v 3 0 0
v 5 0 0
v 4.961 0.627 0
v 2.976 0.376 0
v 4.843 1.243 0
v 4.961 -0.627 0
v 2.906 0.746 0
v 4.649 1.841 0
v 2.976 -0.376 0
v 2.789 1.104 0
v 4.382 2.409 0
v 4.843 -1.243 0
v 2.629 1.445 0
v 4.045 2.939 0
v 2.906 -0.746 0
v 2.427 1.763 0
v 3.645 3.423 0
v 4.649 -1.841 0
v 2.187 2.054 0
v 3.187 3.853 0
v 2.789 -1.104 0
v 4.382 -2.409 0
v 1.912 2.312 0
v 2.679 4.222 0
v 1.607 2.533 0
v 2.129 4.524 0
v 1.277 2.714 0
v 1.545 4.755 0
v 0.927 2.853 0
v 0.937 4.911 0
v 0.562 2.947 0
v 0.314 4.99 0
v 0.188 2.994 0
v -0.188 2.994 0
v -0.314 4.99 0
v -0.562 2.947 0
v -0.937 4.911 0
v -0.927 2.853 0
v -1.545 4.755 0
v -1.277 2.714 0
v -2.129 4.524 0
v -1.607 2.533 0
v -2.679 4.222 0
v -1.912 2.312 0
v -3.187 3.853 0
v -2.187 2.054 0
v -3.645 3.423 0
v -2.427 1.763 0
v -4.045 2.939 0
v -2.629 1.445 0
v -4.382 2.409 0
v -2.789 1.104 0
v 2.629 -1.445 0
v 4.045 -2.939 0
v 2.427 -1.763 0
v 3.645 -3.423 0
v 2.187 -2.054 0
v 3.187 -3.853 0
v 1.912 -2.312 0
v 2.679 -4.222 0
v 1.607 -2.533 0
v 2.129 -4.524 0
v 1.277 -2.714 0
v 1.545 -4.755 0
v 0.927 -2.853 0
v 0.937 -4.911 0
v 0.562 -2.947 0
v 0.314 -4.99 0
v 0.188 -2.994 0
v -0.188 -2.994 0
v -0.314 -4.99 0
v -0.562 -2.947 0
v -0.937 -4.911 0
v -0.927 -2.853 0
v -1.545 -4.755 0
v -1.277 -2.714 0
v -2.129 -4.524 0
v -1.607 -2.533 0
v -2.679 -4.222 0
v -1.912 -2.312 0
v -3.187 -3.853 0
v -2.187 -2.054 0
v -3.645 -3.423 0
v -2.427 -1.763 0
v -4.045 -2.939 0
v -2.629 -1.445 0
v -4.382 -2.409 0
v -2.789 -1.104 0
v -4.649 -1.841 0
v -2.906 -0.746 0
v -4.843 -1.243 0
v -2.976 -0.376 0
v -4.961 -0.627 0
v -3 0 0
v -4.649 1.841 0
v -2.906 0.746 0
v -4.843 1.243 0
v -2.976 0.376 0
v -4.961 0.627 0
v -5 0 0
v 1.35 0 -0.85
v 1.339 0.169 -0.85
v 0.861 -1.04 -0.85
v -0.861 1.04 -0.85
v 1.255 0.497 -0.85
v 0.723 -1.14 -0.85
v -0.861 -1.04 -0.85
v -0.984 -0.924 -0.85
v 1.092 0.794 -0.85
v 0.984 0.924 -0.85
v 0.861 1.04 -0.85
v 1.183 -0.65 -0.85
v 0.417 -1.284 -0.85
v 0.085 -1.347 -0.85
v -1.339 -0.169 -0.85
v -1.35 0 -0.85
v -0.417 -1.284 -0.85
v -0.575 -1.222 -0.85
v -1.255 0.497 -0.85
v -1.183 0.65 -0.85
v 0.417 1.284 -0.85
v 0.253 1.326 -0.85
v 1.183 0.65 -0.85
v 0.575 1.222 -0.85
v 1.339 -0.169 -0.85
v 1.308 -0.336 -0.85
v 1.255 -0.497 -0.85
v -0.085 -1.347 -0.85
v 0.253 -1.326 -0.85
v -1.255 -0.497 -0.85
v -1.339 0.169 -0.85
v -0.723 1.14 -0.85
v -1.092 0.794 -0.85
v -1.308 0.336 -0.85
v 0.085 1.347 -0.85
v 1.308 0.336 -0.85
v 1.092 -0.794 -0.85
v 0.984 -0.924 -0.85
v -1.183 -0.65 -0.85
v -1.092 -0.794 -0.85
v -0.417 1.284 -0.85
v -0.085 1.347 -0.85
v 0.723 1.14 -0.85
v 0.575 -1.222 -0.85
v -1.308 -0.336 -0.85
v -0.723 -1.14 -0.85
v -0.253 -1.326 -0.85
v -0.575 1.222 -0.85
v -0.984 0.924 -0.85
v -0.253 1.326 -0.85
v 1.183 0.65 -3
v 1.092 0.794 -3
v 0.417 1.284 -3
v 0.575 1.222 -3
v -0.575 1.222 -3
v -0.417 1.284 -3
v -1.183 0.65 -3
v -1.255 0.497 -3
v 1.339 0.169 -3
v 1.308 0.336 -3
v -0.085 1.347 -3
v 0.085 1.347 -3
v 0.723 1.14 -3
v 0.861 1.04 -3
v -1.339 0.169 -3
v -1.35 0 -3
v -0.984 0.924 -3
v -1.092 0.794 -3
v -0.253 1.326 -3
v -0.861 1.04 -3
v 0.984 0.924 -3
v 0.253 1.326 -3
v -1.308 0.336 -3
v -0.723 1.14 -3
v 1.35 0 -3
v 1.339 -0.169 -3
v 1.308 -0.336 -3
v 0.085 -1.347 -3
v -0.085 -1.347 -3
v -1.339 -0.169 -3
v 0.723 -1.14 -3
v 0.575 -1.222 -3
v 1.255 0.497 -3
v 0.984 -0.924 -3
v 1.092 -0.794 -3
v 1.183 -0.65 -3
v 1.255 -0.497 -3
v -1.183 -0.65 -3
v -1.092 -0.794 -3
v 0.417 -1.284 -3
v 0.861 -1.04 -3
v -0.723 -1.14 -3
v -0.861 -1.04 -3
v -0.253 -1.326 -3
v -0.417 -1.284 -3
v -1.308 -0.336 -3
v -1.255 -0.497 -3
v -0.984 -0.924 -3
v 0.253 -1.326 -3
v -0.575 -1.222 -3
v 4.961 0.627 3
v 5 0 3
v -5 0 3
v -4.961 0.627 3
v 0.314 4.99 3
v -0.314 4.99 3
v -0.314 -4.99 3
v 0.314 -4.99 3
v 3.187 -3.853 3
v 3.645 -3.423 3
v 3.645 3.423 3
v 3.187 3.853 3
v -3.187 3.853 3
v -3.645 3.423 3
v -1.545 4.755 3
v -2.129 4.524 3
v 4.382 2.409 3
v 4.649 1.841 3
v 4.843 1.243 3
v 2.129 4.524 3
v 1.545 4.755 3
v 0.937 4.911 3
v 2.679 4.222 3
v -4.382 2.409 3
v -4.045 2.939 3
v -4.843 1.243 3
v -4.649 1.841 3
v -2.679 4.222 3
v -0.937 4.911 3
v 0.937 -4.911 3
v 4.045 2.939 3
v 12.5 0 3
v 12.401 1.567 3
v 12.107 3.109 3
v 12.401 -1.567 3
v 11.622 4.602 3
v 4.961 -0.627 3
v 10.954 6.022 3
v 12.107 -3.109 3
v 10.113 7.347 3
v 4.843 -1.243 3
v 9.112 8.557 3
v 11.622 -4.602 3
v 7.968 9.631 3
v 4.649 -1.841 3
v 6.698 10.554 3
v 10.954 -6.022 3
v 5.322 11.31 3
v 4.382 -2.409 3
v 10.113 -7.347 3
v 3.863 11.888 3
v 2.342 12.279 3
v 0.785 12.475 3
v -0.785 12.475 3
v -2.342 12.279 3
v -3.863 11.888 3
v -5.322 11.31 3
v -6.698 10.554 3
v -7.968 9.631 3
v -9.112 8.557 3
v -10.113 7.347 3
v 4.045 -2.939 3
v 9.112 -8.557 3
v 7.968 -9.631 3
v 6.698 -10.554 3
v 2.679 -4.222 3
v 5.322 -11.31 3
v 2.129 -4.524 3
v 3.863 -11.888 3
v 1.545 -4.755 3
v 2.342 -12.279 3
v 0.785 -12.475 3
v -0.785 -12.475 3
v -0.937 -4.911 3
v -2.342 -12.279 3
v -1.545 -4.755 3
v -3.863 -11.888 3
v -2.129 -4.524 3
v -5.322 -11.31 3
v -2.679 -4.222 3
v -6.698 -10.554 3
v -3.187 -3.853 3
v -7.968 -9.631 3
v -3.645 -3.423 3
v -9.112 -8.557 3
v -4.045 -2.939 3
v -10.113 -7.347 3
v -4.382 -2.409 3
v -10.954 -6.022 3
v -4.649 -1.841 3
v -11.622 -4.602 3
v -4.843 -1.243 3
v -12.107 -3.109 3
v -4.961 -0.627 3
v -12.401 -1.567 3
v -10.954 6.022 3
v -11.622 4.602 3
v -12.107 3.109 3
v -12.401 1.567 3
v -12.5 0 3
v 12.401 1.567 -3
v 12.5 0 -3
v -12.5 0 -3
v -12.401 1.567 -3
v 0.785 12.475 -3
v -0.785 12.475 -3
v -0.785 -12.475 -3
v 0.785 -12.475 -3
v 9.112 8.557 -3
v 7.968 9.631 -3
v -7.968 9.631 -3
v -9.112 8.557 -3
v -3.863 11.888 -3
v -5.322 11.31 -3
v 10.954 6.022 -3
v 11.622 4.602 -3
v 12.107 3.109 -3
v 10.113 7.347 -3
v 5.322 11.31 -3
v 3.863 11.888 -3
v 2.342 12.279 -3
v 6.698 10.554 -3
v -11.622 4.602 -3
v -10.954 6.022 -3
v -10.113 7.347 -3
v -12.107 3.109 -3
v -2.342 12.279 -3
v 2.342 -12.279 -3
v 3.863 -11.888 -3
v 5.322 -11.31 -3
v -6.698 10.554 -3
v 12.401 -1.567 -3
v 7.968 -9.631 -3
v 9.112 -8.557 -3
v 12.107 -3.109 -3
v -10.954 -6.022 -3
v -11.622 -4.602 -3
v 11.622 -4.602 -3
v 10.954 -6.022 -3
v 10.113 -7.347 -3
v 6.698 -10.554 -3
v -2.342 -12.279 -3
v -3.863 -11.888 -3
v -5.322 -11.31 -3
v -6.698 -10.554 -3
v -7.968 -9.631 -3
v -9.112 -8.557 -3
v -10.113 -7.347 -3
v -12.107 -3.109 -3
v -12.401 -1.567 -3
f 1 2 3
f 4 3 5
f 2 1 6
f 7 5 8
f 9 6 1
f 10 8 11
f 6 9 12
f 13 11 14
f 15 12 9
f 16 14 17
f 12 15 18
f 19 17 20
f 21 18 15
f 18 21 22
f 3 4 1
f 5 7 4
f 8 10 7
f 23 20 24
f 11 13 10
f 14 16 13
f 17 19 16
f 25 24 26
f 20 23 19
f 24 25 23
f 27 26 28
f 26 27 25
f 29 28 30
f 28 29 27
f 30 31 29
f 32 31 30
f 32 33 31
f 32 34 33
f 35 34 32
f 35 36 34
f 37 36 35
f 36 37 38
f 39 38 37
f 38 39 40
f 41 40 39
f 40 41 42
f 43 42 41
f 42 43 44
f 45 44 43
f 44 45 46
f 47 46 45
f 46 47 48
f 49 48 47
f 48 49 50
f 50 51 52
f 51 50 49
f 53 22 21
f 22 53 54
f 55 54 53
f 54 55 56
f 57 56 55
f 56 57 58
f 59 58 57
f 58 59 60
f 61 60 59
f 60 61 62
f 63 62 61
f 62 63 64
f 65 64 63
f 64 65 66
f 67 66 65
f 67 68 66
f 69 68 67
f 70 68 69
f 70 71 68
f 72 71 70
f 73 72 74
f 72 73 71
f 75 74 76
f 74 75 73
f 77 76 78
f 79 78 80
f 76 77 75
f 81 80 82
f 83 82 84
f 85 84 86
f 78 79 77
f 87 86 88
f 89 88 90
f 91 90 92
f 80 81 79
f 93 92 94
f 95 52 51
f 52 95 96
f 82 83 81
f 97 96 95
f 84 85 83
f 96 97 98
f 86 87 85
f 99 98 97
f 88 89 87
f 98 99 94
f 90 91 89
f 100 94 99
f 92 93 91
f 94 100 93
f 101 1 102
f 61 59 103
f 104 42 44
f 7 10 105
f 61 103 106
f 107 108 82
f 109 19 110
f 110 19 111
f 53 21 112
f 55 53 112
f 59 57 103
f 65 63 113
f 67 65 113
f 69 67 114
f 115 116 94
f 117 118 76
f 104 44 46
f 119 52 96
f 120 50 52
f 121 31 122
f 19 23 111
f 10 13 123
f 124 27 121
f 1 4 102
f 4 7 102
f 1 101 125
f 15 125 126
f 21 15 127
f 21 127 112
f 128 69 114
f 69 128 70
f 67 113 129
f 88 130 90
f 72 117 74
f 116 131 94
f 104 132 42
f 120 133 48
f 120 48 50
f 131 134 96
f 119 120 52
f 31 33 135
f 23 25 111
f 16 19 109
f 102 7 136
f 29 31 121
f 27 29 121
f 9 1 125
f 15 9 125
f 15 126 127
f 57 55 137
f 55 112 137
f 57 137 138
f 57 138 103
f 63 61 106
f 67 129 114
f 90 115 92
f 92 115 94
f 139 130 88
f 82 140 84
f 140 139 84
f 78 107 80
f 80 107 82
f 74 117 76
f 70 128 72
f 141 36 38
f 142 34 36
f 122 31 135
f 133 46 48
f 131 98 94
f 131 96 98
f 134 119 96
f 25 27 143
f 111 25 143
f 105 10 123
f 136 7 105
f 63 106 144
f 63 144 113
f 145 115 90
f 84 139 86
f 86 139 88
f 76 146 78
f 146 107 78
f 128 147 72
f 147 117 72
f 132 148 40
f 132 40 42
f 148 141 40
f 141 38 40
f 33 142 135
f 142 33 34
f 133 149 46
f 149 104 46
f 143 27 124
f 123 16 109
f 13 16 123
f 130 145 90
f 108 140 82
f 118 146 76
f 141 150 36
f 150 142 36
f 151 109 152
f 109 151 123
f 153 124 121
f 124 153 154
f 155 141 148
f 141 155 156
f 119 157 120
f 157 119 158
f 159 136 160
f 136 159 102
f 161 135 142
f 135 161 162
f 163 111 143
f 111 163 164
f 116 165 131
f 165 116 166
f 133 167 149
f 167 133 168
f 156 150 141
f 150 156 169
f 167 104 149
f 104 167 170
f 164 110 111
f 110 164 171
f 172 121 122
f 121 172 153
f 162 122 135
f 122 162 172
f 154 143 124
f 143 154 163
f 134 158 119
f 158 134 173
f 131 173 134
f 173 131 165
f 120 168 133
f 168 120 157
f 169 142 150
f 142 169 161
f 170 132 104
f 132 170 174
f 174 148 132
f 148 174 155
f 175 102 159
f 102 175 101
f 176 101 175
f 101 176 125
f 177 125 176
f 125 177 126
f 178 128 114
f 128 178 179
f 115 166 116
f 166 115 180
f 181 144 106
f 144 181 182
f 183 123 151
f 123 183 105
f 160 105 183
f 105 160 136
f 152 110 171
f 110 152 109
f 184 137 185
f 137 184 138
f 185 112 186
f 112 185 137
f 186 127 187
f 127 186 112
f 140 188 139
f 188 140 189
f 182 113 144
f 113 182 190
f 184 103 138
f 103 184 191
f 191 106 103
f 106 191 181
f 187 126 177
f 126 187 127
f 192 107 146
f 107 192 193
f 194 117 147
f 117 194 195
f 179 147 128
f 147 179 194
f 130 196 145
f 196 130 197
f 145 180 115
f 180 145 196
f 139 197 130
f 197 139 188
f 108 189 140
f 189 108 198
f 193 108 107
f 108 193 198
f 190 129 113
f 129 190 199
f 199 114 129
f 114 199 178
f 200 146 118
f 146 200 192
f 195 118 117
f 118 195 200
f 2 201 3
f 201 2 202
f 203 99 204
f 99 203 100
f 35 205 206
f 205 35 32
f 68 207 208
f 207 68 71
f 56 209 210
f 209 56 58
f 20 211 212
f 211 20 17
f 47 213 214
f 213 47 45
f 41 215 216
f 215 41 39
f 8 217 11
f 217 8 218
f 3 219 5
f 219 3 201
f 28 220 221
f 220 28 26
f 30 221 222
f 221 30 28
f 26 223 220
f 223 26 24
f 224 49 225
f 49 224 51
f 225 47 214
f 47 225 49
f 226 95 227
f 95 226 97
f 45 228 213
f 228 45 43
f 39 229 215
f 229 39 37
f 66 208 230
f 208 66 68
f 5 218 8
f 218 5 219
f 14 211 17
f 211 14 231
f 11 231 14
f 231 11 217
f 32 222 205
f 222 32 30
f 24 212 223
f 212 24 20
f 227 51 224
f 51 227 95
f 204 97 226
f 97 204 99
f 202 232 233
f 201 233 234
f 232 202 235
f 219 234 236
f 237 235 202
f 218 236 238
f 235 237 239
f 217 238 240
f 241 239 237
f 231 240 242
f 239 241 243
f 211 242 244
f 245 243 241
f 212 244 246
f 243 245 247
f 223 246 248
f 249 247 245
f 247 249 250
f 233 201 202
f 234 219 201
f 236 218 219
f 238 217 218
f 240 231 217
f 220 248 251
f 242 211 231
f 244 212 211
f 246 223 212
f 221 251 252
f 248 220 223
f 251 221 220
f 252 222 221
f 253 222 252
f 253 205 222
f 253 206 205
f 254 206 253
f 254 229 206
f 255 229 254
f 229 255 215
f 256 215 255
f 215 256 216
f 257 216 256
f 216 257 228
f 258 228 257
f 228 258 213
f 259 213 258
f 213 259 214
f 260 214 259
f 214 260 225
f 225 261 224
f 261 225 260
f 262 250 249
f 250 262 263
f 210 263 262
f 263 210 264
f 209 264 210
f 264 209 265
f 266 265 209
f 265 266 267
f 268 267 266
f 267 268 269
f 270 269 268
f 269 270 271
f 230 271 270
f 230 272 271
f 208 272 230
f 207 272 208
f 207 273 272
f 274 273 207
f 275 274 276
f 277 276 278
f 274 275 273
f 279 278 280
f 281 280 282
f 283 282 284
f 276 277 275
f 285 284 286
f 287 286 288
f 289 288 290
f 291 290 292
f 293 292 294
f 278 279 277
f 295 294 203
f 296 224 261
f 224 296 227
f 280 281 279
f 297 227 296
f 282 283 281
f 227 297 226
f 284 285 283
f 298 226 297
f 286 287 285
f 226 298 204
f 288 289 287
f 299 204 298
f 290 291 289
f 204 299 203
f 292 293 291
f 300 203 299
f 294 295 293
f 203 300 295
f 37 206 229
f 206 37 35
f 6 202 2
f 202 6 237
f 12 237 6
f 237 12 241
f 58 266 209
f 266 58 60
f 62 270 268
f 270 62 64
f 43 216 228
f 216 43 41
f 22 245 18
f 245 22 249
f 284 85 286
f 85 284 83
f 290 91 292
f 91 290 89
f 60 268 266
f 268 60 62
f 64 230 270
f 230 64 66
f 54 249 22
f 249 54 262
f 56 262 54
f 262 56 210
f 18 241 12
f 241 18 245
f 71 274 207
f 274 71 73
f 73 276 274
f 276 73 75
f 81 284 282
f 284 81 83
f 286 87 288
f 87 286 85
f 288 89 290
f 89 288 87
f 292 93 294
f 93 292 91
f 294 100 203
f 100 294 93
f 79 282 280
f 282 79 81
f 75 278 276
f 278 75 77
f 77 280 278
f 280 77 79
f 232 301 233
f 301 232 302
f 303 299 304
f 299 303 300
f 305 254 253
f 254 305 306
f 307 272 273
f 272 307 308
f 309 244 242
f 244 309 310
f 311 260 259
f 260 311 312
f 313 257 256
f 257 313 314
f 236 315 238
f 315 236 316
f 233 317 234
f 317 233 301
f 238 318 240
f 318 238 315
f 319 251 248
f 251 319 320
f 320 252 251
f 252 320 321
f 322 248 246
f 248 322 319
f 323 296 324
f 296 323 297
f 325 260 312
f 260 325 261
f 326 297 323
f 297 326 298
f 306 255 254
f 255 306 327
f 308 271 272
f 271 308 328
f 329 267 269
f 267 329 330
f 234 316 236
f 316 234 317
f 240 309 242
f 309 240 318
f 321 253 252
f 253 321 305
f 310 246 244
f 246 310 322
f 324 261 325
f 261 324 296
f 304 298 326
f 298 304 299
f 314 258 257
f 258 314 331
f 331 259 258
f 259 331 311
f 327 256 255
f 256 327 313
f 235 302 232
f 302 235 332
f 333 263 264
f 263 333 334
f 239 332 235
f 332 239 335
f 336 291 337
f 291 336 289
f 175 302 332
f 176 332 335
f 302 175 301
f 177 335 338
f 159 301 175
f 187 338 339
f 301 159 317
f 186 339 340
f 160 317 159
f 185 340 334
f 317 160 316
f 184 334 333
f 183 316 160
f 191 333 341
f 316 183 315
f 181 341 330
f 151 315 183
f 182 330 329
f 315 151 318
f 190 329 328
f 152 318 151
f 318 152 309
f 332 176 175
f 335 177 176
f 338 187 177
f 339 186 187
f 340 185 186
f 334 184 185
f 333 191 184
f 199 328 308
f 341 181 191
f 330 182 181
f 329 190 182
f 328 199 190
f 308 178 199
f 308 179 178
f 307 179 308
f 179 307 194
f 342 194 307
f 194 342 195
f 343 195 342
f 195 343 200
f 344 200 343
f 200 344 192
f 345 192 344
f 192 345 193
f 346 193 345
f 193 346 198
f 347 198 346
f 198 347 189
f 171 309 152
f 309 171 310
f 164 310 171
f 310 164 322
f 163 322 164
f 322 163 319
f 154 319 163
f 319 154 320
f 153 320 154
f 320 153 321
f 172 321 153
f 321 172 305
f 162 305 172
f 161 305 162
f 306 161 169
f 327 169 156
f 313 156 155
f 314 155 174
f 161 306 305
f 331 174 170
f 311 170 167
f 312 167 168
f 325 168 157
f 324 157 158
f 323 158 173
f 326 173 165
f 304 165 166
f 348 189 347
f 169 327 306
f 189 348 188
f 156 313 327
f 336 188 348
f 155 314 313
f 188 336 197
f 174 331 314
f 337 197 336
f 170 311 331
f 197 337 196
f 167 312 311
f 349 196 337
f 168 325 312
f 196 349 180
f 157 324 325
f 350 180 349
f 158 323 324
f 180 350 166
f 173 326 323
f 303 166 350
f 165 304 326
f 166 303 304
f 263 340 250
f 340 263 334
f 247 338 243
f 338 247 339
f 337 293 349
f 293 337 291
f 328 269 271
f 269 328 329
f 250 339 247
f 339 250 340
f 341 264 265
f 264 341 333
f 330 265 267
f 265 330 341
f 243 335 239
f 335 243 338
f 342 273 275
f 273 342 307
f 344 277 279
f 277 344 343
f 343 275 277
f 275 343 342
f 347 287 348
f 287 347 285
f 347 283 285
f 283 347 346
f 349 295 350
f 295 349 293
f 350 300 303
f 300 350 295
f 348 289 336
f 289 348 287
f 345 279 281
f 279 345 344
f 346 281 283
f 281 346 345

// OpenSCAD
$fn = 50;

difference() {
	union() {
		translate(v = [0, 0, -3.0]) {
			cylinder(h = 6, r = 12.5);
		}
	}
	union() {
		translate(v = [0, 0, 0]) {
			rotate(a = [0, 0, 0]) {
				difference() {
					union() {
						translate(v = [0, 0, -6.0]) {
							cylinder(h = 6, r = 1.0);
						}
						translate(v = [0, 0, -0.85]) {
							cylinder(h = 0.85, r1 = 1.35, r2 = 3.0);
						}
						translate(v = [0, 0, -6.0]) {
							cylinder(h = 6, r = 1.35);
						}
						translate(v = [0, 0, -6.0]) {
							cylinder(h = 6, r = 1.0);
						}
					}
					union();
				}
			}
		}
		#cylinder(h = 3, r = 5.0);
	}
}
